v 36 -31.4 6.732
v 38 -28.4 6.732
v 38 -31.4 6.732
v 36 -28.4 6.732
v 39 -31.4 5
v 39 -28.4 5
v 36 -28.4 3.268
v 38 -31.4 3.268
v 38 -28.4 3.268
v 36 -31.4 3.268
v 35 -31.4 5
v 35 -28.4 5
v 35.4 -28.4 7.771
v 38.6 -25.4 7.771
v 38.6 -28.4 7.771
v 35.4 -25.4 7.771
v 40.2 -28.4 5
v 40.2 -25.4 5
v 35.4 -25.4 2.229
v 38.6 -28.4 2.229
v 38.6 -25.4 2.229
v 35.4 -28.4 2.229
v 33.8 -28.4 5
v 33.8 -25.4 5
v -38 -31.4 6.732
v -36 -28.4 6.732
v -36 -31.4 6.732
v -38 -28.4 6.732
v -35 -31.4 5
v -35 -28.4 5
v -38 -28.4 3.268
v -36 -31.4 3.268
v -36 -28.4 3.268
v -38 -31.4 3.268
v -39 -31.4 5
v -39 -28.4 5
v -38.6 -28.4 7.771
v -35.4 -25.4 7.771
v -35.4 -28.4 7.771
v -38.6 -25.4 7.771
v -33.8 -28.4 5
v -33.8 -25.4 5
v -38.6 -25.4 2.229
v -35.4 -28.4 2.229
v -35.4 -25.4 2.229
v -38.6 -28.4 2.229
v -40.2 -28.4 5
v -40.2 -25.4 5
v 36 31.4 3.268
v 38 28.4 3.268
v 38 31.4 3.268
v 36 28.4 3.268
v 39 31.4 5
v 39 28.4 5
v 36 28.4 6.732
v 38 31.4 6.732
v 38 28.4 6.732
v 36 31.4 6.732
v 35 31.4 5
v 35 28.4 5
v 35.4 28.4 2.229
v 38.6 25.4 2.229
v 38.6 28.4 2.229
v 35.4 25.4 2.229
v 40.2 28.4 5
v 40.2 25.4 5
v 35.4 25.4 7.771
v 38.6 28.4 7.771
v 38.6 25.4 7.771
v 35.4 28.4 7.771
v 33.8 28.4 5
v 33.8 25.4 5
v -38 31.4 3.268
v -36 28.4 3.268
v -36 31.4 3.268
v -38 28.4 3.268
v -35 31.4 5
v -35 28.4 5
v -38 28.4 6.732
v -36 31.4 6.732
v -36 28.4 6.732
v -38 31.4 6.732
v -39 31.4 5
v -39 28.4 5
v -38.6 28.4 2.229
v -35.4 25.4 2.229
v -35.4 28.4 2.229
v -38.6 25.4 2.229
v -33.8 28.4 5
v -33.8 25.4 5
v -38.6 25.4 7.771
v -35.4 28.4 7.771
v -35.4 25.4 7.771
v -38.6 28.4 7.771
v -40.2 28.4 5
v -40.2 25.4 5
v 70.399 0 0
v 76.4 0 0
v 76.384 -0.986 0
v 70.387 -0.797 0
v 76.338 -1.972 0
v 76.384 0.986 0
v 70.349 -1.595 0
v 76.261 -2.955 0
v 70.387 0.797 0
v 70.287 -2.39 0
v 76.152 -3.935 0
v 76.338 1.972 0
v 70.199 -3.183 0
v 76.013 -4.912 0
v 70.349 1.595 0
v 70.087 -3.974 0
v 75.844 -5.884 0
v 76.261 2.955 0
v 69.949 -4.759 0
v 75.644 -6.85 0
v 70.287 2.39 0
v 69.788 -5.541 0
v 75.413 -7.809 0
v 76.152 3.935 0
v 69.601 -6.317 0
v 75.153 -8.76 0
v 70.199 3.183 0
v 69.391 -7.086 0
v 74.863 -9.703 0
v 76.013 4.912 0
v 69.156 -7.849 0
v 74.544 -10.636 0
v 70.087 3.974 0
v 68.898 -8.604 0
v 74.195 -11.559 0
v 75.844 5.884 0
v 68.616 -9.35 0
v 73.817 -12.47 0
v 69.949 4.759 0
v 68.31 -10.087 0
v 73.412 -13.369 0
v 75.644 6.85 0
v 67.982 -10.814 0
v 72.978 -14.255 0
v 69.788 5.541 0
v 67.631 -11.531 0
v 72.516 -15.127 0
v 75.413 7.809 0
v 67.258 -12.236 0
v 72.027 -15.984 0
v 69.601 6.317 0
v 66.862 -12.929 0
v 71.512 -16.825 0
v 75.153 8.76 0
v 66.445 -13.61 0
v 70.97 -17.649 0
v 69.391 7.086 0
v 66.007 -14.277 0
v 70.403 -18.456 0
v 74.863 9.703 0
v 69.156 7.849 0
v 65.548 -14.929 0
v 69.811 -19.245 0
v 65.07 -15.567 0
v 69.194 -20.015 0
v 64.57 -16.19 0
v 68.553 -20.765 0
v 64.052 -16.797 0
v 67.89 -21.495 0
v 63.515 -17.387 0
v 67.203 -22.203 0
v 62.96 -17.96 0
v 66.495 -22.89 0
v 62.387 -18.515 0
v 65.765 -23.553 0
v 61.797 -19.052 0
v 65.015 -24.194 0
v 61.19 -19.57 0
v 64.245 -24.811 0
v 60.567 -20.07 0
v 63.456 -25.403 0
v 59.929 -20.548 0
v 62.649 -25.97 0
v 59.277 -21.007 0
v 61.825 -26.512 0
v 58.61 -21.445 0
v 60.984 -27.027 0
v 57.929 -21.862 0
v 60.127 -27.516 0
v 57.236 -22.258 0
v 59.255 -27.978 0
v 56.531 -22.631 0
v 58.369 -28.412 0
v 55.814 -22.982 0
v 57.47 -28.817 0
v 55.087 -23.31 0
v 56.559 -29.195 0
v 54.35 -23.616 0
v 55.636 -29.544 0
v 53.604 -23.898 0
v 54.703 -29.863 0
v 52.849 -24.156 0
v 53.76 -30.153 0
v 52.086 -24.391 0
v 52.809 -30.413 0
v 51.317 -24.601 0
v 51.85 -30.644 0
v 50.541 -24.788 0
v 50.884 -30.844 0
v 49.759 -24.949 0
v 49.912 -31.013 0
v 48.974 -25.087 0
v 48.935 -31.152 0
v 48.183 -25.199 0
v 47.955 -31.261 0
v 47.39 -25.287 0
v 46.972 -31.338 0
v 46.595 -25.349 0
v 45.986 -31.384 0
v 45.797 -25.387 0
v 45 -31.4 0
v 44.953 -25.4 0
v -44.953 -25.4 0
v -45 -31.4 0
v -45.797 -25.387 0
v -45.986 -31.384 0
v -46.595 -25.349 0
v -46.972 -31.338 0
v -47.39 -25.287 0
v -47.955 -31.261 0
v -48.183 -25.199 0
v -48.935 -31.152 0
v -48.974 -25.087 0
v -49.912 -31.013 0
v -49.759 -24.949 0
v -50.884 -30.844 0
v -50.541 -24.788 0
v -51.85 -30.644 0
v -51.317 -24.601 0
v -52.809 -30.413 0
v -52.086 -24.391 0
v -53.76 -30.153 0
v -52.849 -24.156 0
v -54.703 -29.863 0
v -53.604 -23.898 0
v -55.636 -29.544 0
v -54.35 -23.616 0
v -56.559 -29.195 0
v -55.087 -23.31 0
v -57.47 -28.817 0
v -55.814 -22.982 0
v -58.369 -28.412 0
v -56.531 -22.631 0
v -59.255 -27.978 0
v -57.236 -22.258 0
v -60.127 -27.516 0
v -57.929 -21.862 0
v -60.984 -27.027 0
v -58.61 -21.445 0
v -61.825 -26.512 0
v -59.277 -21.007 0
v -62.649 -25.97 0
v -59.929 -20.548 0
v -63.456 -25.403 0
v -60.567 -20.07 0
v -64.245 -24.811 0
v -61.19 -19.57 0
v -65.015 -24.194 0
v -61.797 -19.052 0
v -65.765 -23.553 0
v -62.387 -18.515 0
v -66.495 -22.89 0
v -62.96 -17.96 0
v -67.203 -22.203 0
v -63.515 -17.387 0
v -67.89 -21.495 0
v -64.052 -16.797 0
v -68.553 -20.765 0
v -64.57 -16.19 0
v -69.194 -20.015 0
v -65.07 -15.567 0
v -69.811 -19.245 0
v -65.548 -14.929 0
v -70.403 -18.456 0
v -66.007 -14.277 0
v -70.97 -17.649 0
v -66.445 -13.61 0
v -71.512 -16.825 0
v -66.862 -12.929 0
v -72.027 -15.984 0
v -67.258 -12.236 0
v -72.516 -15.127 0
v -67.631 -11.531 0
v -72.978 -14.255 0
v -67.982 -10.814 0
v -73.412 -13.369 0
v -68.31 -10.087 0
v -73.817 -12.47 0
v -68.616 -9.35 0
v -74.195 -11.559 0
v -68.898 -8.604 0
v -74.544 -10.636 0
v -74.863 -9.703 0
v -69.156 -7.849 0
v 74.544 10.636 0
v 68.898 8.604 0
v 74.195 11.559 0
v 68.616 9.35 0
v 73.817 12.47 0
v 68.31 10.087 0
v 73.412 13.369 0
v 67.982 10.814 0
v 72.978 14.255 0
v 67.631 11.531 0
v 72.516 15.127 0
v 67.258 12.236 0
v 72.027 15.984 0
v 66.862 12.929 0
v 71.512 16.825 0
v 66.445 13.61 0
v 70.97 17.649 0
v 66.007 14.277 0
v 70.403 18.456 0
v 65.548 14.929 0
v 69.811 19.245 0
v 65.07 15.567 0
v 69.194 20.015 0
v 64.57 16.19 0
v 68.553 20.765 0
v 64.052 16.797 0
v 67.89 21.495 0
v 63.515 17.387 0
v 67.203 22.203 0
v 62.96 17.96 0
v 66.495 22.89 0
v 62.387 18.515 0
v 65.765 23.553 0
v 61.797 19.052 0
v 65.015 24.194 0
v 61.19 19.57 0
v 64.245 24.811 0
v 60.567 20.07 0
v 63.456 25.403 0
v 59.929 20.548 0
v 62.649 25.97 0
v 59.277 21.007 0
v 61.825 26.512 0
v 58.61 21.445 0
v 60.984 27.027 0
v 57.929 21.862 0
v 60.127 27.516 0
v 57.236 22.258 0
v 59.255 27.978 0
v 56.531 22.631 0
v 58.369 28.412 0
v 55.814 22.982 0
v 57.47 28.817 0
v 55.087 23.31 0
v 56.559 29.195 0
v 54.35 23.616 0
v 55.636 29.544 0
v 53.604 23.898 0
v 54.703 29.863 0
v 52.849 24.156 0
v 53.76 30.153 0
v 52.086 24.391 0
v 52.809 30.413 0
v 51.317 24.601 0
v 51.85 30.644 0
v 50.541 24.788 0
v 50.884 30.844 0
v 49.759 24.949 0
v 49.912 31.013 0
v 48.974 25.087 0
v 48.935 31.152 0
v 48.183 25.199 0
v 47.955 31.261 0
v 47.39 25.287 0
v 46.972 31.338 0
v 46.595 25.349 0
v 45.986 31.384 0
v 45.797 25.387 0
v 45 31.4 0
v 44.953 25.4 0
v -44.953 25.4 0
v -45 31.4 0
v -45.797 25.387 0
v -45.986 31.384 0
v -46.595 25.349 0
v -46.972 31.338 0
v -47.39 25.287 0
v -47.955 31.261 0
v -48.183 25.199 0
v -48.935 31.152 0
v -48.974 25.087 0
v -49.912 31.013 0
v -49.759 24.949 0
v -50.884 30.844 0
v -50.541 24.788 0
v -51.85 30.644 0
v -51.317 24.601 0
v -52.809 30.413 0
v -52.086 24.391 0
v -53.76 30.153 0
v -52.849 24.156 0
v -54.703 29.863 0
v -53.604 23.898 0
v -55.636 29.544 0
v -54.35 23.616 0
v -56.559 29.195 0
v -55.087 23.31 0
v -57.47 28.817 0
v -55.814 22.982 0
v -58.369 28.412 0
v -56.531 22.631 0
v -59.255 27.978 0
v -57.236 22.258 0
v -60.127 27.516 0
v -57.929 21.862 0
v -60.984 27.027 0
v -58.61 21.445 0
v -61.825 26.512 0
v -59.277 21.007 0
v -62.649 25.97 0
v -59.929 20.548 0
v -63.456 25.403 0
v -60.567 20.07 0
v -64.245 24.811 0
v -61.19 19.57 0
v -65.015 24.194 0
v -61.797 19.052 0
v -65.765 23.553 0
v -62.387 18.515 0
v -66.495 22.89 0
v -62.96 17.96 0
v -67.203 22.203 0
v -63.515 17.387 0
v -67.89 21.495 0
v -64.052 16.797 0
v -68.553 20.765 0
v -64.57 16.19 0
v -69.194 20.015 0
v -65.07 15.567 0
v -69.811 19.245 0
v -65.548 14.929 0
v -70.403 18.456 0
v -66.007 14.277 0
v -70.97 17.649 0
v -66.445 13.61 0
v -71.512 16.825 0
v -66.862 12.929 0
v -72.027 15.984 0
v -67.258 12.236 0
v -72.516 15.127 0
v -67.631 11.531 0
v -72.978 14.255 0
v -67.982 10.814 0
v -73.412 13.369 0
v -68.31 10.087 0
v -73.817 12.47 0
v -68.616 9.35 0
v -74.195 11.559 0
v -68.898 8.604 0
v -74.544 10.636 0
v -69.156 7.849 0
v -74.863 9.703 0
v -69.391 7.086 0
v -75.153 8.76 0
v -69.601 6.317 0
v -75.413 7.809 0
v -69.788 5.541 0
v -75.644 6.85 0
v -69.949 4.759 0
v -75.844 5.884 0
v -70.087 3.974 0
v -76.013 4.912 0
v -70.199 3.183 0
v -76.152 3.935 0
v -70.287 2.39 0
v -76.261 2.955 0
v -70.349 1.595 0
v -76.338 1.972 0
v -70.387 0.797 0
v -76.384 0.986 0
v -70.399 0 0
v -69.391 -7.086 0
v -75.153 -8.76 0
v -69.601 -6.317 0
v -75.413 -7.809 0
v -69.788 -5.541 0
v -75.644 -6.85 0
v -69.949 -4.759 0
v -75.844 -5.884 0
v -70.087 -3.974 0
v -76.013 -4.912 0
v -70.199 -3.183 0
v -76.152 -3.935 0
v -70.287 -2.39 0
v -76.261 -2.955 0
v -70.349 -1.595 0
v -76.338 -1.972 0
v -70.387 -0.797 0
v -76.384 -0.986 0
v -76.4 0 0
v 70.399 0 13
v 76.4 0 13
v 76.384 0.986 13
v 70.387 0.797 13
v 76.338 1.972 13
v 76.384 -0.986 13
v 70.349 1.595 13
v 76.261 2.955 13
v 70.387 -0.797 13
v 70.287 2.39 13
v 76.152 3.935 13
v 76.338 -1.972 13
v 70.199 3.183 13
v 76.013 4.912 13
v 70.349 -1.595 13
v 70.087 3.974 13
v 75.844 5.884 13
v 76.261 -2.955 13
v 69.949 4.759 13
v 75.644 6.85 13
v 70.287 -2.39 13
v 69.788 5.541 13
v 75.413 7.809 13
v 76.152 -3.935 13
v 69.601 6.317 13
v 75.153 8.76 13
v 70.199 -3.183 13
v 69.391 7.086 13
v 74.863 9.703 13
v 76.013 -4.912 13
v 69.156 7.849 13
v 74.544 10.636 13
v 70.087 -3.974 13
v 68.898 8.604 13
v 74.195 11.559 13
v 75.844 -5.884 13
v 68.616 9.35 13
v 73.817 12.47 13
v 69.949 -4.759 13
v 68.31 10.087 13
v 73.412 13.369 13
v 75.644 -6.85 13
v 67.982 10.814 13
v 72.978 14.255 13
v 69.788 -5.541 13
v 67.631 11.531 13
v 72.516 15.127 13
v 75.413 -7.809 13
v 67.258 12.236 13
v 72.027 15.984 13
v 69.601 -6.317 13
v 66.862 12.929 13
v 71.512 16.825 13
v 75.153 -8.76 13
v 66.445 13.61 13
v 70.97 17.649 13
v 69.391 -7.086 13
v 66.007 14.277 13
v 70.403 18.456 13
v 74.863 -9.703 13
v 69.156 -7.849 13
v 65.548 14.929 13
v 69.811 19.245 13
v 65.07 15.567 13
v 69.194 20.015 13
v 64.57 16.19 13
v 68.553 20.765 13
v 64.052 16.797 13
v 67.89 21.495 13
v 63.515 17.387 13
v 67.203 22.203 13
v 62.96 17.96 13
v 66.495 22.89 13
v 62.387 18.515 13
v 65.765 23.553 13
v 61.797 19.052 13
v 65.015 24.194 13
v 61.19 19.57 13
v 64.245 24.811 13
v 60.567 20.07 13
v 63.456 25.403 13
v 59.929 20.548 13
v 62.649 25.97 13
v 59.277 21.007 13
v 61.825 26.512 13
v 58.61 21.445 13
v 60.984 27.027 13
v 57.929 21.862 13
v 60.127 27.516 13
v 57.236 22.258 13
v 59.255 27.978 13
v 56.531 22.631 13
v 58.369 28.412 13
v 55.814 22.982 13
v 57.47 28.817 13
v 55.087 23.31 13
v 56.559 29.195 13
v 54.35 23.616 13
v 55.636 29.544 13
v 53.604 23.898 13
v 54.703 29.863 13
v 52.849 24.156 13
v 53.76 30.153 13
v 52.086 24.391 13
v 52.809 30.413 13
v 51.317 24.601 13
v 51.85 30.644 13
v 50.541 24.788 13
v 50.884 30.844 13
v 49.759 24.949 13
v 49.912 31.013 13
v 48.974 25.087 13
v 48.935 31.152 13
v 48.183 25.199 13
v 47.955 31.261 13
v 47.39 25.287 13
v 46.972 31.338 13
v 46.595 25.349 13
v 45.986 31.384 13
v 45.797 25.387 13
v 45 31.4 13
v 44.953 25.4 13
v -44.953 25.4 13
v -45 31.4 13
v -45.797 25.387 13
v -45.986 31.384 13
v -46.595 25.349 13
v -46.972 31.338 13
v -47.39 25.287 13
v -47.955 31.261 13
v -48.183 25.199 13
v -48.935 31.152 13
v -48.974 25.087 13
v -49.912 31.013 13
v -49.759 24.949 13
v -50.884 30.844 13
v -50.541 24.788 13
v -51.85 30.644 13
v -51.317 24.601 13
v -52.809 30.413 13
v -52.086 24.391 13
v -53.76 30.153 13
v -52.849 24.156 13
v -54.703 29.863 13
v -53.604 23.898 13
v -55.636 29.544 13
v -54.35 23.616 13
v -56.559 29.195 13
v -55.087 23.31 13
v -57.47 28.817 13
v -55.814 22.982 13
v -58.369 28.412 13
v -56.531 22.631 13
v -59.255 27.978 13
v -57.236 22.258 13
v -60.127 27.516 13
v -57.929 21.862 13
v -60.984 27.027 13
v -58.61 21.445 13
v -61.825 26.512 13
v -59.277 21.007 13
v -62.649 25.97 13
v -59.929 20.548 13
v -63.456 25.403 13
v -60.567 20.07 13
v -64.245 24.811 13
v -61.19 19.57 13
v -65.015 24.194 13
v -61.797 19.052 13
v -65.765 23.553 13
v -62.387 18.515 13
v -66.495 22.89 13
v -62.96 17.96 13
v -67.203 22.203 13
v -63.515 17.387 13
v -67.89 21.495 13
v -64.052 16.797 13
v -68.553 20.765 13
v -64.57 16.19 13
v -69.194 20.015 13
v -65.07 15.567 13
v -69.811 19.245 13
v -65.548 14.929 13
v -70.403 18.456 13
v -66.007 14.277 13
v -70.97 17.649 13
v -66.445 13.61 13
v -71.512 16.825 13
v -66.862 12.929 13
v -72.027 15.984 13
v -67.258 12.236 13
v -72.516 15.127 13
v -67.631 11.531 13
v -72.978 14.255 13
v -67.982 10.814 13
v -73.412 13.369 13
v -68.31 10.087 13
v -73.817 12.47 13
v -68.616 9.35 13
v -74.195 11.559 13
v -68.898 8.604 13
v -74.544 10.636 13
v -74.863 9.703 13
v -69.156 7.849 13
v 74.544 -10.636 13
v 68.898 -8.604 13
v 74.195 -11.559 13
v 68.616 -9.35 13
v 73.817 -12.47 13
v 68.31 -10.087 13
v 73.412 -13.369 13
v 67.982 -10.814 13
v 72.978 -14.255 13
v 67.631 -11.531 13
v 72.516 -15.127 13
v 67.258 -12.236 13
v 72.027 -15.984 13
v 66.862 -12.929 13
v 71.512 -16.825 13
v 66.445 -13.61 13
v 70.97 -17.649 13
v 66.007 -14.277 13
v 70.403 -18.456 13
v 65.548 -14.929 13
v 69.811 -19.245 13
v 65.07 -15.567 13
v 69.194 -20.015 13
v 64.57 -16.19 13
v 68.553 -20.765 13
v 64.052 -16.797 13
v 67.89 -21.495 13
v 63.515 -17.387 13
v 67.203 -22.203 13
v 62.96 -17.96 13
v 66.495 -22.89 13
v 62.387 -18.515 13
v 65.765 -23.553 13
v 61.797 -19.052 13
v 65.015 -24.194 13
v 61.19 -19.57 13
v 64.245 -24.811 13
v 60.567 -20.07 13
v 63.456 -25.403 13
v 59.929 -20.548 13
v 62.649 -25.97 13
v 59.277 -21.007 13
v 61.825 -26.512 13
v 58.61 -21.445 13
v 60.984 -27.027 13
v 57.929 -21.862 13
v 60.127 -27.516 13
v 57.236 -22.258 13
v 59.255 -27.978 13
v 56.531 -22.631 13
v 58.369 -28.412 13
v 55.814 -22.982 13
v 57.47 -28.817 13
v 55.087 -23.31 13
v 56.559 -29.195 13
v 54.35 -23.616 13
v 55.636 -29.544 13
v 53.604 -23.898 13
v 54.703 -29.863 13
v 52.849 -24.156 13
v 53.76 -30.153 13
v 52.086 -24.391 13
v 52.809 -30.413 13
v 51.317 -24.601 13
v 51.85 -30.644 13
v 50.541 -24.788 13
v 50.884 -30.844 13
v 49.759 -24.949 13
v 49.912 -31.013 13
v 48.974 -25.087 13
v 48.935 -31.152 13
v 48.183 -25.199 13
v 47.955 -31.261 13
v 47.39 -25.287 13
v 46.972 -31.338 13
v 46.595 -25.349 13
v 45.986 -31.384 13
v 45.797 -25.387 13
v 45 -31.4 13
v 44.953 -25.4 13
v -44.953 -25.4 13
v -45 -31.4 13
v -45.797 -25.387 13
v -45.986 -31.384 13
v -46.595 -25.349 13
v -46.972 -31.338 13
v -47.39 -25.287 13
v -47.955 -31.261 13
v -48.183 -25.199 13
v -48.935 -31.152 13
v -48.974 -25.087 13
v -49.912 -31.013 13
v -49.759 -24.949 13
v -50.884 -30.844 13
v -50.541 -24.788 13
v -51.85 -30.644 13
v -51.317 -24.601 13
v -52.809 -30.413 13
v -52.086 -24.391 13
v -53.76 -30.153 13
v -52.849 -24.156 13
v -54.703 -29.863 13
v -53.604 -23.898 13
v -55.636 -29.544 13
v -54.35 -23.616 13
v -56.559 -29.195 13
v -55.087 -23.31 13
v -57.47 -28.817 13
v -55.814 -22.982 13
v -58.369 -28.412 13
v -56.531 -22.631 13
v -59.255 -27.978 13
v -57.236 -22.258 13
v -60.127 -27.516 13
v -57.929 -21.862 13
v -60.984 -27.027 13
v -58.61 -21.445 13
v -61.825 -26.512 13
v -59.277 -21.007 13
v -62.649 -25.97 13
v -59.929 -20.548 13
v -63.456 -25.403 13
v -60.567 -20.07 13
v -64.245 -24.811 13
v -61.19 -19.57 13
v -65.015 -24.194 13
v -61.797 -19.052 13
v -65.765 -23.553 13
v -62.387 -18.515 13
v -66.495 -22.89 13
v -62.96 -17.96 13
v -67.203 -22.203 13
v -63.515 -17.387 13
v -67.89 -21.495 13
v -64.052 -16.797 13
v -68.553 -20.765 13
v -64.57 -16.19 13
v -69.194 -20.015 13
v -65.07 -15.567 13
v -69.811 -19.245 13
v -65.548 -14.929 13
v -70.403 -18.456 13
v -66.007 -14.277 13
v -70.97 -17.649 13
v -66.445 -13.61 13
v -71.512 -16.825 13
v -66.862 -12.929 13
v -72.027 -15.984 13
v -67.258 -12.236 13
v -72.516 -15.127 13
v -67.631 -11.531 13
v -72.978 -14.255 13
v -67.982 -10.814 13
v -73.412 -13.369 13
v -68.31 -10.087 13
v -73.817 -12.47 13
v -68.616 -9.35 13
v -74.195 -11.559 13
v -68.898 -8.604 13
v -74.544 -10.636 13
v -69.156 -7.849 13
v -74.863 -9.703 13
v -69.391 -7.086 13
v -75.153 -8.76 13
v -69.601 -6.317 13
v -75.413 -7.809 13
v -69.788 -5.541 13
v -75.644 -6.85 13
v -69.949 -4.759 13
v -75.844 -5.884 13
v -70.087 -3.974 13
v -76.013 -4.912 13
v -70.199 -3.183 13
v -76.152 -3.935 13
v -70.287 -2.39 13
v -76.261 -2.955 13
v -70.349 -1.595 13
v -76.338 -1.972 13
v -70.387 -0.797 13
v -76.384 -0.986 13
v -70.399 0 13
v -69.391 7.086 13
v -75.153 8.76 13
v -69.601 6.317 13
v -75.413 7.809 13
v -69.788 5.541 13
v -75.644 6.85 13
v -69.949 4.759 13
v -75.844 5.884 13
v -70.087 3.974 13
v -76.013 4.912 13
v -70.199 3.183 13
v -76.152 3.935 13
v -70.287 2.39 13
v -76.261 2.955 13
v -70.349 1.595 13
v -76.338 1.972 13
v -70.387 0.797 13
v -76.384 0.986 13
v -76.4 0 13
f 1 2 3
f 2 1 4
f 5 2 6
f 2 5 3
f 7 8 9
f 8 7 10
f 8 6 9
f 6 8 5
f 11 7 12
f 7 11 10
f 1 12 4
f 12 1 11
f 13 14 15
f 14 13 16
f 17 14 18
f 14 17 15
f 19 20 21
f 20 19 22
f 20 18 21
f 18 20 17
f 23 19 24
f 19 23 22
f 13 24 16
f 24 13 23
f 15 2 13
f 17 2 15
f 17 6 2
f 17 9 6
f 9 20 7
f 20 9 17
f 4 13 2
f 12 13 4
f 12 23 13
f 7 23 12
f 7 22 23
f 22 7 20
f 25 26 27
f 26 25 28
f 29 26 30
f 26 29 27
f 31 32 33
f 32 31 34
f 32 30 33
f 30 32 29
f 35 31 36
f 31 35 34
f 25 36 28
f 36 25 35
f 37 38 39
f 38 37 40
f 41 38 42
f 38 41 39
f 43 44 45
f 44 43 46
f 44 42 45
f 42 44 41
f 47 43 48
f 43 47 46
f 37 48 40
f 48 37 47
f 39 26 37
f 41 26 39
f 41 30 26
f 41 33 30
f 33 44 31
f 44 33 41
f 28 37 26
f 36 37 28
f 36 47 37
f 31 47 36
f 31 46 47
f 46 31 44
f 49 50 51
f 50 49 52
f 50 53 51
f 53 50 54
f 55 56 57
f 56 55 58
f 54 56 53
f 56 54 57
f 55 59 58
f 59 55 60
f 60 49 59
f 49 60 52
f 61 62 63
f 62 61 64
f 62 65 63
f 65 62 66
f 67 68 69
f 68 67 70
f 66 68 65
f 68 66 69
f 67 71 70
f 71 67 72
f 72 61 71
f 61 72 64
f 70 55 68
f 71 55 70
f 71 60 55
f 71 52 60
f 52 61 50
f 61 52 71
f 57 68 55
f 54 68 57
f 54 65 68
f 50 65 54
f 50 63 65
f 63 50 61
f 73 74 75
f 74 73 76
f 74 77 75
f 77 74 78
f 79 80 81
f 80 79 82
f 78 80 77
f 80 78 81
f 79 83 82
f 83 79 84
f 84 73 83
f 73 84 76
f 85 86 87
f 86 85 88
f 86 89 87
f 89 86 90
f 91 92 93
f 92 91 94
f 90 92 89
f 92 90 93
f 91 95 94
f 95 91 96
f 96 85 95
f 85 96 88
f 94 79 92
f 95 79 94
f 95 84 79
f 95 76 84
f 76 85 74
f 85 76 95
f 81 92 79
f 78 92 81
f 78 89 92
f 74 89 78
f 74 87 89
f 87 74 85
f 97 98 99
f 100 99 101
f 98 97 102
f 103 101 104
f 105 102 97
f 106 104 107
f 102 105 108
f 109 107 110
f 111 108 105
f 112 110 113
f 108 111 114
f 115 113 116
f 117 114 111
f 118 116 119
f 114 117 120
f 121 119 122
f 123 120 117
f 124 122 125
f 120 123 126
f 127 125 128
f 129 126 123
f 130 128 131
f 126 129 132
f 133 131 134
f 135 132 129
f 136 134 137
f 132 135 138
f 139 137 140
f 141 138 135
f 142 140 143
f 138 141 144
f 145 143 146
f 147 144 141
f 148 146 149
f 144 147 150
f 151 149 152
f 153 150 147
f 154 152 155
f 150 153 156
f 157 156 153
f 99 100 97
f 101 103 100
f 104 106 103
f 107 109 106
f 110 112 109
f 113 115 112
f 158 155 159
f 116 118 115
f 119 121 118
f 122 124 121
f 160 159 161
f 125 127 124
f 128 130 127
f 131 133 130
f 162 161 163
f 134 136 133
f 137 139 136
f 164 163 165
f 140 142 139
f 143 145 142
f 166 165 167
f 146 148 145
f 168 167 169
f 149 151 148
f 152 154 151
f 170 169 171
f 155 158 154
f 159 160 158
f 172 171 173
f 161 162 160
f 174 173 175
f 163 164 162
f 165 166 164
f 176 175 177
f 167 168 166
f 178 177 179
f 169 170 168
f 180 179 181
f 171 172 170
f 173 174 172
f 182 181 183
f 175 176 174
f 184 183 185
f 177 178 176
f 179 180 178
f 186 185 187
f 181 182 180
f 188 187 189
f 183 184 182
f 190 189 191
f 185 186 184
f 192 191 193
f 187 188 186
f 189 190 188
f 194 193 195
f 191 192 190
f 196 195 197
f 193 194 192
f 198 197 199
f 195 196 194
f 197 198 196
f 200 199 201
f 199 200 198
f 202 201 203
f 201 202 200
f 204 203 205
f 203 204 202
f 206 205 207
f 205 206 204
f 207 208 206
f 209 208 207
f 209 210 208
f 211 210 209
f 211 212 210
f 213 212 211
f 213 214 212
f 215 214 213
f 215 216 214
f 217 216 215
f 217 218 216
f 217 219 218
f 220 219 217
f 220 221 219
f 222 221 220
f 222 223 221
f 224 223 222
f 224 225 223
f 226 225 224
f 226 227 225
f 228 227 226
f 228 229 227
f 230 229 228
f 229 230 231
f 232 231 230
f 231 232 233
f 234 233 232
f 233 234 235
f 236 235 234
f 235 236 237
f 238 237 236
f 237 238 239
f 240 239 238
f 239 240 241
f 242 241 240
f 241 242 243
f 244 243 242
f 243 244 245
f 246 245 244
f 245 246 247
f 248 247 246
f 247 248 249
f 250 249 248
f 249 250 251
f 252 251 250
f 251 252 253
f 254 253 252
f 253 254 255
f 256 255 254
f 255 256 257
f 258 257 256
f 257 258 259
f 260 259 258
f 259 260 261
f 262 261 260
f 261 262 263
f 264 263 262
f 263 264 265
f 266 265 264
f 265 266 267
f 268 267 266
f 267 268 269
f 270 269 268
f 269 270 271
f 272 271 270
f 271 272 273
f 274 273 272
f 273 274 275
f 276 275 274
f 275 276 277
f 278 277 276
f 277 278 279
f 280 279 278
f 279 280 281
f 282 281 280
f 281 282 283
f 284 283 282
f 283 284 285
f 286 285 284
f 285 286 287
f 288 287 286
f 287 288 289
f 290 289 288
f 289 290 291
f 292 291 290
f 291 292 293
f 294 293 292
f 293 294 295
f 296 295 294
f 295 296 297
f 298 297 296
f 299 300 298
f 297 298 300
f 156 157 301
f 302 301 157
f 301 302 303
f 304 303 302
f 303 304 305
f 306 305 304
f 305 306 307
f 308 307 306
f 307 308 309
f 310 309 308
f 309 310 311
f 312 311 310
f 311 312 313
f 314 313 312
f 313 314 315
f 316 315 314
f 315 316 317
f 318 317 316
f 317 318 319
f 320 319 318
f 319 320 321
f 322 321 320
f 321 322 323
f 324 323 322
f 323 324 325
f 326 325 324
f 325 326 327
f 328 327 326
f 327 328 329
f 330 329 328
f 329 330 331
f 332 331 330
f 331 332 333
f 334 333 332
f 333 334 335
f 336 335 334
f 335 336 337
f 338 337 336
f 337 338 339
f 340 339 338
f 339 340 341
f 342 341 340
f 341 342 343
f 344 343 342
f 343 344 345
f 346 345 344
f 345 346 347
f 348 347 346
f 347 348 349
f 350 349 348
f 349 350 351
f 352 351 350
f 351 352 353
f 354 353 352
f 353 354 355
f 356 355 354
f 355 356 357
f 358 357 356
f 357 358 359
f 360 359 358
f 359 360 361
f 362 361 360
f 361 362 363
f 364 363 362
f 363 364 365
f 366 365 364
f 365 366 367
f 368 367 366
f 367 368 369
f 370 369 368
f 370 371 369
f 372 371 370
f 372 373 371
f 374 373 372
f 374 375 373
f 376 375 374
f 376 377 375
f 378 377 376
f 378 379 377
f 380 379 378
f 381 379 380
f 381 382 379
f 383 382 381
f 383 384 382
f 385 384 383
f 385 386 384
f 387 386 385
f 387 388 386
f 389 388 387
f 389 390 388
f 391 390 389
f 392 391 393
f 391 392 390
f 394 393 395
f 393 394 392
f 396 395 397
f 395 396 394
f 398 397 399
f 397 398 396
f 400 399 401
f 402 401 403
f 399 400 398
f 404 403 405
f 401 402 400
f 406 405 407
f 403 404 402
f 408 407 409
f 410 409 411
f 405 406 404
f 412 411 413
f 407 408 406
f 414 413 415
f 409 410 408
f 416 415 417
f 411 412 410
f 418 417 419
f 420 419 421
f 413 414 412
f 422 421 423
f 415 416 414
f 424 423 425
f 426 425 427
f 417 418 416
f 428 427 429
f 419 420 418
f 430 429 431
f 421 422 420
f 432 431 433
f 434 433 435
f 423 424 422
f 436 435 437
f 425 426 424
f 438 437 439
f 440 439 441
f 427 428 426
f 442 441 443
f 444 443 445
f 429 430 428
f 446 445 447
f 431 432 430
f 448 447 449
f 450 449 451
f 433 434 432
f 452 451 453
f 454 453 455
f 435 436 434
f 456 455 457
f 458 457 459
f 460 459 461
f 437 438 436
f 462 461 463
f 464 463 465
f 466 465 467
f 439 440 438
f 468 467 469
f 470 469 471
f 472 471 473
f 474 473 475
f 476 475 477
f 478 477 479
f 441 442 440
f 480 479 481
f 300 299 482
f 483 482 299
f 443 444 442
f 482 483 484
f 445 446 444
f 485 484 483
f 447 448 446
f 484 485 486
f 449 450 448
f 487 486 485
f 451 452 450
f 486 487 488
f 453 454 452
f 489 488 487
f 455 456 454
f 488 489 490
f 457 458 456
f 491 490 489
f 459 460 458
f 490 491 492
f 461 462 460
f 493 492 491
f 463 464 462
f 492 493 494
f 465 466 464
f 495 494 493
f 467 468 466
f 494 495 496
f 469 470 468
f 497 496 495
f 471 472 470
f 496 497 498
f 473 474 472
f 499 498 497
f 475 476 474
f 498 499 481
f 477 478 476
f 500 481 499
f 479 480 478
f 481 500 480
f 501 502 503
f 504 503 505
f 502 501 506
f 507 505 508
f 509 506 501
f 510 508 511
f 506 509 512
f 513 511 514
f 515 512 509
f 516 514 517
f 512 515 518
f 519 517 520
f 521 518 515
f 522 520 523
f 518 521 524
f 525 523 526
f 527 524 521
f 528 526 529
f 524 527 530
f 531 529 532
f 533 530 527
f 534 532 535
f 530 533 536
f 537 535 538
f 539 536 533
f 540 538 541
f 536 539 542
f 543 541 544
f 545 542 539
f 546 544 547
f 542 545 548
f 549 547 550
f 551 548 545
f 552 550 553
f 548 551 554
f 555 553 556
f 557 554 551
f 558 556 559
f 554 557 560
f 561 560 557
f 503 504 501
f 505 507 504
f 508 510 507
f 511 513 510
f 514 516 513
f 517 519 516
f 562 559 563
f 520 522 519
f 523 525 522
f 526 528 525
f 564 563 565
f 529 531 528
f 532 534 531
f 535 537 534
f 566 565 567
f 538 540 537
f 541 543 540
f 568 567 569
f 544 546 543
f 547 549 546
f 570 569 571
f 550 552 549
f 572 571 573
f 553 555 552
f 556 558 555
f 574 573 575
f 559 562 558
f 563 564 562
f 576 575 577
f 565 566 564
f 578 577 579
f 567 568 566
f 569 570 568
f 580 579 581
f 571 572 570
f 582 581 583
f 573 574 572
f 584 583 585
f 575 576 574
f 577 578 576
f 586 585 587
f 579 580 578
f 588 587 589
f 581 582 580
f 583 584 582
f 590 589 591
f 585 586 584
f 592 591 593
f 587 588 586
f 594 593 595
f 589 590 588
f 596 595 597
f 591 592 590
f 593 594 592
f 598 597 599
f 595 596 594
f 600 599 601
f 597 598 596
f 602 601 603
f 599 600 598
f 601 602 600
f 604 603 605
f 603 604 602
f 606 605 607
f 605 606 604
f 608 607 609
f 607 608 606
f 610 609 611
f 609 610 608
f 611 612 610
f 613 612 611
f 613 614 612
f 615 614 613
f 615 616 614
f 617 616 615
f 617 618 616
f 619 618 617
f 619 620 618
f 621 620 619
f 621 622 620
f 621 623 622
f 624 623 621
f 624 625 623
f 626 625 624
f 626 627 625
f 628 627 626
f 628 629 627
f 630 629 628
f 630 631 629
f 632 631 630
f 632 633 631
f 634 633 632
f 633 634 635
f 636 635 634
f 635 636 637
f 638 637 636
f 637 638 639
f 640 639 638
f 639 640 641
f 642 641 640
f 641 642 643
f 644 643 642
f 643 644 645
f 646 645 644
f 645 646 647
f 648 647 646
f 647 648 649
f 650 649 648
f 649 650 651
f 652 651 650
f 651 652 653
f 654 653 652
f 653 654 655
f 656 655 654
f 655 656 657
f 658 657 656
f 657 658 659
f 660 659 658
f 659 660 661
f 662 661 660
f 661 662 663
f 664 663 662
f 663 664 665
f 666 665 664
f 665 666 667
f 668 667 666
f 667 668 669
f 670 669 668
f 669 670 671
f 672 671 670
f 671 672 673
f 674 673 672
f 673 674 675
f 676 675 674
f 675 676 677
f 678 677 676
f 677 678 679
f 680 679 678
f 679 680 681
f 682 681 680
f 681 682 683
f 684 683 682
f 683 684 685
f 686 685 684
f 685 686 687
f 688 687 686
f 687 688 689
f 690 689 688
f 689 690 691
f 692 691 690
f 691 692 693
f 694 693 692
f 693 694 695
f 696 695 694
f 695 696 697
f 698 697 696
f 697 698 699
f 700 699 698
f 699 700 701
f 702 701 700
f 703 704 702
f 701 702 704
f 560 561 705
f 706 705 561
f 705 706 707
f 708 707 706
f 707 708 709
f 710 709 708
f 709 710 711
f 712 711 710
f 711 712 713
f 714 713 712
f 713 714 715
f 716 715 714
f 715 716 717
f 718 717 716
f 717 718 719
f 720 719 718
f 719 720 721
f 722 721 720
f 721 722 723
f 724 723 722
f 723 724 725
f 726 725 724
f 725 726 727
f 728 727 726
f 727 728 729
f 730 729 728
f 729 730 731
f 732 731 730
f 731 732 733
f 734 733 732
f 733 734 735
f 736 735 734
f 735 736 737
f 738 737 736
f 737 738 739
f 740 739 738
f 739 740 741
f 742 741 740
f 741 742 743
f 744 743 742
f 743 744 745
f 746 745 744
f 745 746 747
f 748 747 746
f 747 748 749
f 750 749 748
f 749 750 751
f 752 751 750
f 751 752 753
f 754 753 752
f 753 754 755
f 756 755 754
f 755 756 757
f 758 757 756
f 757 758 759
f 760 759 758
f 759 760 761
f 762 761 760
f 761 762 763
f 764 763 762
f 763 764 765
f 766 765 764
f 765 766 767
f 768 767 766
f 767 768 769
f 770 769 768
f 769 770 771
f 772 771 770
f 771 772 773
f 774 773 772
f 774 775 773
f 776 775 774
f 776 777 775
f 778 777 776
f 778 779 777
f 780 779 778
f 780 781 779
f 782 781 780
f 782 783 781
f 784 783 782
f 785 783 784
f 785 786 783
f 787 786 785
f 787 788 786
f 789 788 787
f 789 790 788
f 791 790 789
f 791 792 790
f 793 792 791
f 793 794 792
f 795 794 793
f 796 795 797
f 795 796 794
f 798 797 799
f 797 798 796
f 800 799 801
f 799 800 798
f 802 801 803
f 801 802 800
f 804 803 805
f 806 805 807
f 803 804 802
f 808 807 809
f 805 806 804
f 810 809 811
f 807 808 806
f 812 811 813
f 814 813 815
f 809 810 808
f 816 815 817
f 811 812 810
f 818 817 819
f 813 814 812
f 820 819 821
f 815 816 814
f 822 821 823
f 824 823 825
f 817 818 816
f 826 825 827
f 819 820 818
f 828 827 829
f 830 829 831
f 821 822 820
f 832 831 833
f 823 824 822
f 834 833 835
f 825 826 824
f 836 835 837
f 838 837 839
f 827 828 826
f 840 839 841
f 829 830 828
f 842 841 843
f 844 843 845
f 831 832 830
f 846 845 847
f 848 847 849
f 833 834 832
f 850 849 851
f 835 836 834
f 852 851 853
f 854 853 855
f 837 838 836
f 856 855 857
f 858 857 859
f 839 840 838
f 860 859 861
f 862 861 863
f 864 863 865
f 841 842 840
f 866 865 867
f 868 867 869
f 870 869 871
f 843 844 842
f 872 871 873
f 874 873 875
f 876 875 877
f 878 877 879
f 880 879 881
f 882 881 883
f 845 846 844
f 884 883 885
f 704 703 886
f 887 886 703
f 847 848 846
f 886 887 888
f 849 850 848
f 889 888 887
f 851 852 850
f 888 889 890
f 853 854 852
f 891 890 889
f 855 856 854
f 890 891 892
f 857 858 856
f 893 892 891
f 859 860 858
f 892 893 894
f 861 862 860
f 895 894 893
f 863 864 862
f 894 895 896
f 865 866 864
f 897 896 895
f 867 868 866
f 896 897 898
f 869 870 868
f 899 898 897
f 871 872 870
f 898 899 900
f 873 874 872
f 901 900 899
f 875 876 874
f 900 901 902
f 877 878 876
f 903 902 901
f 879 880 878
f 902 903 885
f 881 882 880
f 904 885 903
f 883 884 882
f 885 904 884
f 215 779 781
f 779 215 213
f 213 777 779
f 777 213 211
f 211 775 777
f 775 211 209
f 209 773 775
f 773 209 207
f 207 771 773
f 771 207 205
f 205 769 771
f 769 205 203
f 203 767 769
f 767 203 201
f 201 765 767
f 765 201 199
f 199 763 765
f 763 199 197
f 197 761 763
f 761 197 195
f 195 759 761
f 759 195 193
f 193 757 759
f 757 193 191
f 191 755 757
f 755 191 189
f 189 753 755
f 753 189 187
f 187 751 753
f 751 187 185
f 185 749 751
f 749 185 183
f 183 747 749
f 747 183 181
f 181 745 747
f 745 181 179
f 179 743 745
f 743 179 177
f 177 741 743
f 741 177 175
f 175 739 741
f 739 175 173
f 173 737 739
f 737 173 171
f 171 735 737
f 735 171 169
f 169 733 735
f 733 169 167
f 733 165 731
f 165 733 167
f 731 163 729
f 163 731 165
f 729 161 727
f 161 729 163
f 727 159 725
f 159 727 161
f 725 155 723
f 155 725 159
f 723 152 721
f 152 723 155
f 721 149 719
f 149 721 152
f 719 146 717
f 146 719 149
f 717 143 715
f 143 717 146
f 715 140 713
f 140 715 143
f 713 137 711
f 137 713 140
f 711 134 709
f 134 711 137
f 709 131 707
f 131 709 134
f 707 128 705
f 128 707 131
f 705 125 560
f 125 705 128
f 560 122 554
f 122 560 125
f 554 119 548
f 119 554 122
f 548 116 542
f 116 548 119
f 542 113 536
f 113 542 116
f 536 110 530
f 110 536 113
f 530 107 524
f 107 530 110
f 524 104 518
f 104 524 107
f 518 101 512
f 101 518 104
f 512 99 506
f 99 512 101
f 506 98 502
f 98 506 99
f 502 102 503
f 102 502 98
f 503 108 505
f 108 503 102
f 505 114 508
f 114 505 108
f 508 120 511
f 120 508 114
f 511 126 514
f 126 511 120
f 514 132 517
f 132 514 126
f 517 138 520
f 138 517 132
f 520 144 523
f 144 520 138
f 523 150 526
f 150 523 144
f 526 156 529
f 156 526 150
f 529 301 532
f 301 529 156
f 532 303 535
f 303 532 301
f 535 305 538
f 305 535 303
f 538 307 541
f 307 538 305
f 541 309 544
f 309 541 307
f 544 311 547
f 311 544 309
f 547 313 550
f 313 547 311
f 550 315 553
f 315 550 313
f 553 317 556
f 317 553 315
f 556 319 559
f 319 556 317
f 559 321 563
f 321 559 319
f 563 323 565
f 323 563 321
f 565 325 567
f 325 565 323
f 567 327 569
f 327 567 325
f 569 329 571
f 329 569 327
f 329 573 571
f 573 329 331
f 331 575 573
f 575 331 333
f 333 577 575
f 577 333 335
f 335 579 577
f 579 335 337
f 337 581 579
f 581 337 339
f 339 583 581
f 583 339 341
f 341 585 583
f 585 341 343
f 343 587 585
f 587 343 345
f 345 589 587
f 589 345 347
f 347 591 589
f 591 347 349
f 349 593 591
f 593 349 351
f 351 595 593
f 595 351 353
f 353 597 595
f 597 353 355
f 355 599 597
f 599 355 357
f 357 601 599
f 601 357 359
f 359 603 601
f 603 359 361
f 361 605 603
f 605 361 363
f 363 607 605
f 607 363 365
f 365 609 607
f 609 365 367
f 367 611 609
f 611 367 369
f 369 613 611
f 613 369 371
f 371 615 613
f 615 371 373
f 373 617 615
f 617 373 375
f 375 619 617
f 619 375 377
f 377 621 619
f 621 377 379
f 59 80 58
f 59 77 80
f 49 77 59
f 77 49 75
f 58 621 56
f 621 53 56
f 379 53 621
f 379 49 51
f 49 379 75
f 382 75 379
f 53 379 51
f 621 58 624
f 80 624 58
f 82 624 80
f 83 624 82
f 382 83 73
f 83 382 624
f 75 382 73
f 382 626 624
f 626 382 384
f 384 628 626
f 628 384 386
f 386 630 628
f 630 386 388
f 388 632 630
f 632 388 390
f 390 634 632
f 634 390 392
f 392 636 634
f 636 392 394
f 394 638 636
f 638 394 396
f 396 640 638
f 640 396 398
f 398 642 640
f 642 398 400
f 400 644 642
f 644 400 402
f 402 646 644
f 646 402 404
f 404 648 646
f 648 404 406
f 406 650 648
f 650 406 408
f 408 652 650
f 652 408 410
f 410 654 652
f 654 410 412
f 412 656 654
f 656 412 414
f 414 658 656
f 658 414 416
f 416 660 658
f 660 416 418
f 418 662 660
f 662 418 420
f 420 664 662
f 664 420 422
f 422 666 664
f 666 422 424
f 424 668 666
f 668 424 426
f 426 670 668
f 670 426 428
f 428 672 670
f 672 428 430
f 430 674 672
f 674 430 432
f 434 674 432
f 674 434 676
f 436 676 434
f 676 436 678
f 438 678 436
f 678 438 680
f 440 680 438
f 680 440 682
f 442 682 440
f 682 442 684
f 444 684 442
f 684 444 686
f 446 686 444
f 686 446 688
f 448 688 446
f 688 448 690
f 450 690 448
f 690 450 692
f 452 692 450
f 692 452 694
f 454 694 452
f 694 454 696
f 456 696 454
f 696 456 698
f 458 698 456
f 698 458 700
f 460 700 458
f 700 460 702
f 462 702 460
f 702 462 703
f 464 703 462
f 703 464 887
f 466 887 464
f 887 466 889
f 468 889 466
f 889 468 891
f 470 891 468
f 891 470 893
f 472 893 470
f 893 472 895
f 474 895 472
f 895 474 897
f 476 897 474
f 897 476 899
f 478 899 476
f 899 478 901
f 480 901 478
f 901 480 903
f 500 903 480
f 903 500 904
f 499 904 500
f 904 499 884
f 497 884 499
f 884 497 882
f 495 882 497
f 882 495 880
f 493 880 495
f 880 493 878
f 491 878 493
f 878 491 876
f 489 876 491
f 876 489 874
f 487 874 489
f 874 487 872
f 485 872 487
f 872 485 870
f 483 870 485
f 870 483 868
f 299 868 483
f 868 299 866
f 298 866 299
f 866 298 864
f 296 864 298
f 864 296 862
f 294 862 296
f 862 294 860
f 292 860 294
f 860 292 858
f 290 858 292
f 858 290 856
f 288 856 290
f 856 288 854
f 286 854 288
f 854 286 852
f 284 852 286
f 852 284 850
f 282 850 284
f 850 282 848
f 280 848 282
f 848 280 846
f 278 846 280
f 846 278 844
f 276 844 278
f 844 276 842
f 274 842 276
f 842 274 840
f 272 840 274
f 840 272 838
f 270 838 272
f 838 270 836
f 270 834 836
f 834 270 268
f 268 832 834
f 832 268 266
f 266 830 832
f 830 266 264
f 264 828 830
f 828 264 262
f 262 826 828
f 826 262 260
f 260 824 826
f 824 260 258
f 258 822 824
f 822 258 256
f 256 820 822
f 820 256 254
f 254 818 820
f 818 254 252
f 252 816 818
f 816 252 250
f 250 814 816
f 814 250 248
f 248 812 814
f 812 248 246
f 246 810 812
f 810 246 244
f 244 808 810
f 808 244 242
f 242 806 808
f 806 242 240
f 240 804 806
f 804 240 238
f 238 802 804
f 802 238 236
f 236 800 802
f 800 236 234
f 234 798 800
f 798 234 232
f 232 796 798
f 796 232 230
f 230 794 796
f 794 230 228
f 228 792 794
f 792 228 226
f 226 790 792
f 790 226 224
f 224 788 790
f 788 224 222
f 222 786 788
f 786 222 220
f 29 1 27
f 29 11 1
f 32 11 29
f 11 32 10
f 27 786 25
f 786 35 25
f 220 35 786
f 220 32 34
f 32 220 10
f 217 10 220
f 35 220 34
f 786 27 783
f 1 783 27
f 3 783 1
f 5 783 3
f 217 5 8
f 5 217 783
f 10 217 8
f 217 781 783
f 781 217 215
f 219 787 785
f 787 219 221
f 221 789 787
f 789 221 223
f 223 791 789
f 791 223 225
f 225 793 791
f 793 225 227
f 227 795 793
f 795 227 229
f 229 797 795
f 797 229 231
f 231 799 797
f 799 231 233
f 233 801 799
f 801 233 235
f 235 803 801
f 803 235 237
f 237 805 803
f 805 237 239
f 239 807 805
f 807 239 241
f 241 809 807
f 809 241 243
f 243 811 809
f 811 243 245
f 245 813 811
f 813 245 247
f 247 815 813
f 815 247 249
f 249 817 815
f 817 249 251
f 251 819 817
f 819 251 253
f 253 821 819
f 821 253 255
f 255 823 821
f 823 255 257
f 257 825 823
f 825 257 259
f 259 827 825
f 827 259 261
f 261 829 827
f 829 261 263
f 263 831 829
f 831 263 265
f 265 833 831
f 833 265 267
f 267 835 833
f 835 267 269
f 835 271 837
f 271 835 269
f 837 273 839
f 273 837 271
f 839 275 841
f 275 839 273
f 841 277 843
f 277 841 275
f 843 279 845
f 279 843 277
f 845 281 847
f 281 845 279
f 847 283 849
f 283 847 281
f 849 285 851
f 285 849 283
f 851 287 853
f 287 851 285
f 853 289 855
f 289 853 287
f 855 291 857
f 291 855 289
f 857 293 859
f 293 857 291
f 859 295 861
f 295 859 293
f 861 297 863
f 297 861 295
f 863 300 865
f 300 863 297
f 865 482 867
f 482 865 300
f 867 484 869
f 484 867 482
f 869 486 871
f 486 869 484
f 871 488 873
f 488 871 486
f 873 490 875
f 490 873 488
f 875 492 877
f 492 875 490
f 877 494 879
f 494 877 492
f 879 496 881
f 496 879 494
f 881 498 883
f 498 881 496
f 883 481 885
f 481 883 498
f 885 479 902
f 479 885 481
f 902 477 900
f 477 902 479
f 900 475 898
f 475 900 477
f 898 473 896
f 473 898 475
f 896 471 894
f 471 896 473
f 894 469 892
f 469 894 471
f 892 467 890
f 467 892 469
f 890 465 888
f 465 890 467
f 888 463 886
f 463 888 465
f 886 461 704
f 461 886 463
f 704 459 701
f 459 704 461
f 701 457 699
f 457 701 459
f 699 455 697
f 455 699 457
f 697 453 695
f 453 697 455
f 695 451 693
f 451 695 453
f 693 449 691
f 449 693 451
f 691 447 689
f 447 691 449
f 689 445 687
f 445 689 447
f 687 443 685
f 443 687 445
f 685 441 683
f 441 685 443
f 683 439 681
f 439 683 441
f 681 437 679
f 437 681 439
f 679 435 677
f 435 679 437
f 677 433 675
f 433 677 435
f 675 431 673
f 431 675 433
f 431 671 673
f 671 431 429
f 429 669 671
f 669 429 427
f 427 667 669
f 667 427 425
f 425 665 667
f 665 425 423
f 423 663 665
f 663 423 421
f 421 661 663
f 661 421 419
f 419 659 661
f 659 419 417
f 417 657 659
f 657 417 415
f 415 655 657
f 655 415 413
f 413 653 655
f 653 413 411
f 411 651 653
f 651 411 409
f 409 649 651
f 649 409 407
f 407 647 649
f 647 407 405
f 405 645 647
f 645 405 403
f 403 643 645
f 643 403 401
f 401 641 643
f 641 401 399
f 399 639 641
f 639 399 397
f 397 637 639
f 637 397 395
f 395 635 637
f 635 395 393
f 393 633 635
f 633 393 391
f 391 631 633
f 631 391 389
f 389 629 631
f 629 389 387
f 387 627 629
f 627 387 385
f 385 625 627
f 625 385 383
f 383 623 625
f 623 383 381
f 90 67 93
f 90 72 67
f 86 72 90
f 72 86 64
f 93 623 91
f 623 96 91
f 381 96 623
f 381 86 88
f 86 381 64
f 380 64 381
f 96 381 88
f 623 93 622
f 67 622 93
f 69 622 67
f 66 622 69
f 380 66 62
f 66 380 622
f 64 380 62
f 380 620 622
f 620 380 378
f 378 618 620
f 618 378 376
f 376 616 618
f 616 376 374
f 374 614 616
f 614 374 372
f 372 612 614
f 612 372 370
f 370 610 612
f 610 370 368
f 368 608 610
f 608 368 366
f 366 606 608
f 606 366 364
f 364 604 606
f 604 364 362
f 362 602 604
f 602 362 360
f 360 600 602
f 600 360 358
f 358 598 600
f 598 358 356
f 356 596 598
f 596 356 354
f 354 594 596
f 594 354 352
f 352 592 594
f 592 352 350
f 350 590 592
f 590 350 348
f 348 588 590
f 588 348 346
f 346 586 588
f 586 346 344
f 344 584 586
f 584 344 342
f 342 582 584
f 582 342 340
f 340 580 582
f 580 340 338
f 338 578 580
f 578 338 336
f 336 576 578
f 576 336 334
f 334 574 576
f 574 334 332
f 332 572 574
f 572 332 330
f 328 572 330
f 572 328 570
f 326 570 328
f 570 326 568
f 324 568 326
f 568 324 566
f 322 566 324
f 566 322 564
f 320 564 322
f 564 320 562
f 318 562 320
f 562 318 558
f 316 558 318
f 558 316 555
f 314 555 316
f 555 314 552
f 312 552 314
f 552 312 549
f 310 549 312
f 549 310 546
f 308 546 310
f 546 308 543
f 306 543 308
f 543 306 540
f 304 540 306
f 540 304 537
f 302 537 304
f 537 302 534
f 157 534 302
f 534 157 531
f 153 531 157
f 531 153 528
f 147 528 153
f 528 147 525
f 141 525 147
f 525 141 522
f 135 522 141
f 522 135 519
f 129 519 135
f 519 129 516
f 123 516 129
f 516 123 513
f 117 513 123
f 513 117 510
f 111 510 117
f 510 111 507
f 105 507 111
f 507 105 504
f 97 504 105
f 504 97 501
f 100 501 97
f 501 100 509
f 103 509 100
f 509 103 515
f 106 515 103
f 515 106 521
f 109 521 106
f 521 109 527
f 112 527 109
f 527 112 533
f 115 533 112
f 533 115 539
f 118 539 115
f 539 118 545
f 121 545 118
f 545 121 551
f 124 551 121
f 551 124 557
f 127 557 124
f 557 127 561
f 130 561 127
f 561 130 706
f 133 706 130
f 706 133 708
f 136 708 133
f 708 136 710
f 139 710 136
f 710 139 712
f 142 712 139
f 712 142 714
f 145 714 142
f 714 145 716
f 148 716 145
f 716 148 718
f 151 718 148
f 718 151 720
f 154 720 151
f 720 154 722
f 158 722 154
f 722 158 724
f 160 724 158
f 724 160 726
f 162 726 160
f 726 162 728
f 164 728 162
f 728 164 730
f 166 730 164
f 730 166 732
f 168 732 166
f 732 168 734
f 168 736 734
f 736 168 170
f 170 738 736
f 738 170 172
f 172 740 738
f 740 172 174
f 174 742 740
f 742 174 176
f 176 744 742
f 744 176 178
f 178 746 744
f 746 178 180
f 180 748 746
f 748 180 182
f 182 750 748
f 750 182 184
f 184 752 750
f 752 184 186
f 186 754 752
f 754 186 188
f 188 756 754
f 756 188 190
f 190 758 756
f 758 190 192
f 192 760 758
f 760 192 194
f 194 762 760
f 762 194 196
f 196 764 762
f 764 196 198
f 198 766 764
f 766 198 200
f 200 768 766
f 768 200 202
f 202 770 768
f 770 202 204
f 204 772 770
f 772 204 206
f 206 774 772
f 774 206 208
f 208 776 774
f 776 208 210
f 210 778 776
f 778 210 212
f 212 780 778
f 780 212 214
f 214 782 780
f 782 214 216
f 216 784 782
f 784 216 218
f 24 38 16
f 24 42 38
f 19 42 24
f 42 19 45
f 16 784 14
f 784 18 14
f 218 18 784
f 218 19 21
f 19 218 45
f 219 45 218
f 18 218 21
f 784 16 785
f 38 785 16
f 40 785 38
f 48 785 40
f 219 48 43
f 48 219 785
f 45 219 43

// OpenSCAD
// file: m3.scad
m3_tolerance = 0.2;

m3_nut_width = 5.4;
m3_nut_width_point = 6;
m3_nut_height = 2.5;
m3_bolt_head_diameter = 5.4;
m3_bolt_recess_depth = 3;

module m3_cutout(nut_slot_length=10, tolerance=0.2, extra_thread_recess=true) {
    union() {
        // Z axis is the bolt axis
        // Cutout for nut
        translate([-(m3_nut_width + tolerance)/2, -(m3_nut_width_point + tolerance)/2, -2.5]) cube([m3_nut_width + tolerance, (m3_nut_width_point + tolerance)/2 + nut_slot_length + tolerance, m3_nut_height + tolerance]);

        translate([-(m3_nut_width + tolerance)/2, -(3 + tolerance)/2, 0]) cube([m3_nut_width + tolerance, 3 + tolerance, 10]);

        // Recess for extra thread
        if (extra_thread_recess) {
            translate([0, 0, -4]) cylinder(d=3 + 2*tolerance, h=4);
        }
    }
}

module m3_bolt_recess_cutout(tolerance=0.2) {
    union() {
        translate([0, 0, -10])
        cylinder(d=m3_bolt_recess_depth + tolerance, h=11);

        cylinder(d=m3_bolt_head_diameter + tolerance, h=10);
    }
}

/* !m3_cutout(); */

/* $fn=100; */
/* difference() { */
/*     translate([-5, -5, 0]) cube([10, 10, 8]); */
/*     translate([0, 0, 5]) m3_cutout(); */
/* } */

/* translate([20, 0, 0]) difference() { */
/*     translate([-5, -5, 0]) cube([10, 10, 6]); */
/*     translate([0, 0, 3]) m3_bold_recess_cutout(); */
/* } */
// file: shared.scad
module stadium(width, length) {
    hull() {
        translate([(width-length)/2, 0, 0]) circle(d=min(width, length));
        translate([-(width-length)/2, 0, 0]) circle(d=min(width, length));
    }
}
// main file
include <shared.scad>;
include <m3.scad>;

$fn=200;

/* Recommented print settings:
 * Layer height: 0.2mm
 */

module collar(internal_plate_width, internal_plate_length, shell_height, internal_plate_thickness=3, material_thickness=1.5, wall_thickness=3) {
    tolerance = 0.2;

    bolt_height = 5;
    height = shell_height - wall_thickness * 2*material_thickness - internal_plate_thickness - 1;

    width = internal_plate_width + material_thickness*2 - tolerance;
    length = internal_plate_length + material_thickness*2 - tolerance;
    /* total_thickness = 2*wall_thickness + 2*material_thickness + internal_plate_thickness; */
    /* inner_groove_thickness = wall_thickness + 2*material_thickness + internal_plate_thickness; */

    internal_width = width - 2*wall_thickness - 2*m3_bolt_recess_depth;

    difference() {
        // Collar
        /* linear_extrude(height=2) */
        linear_extrude(height=height)
        difference() {
            stadium(length, width);

            offset(r=-wall_thickness-m3_bolt_recess_depth)
            stadium(length, width);
        };

        // Cutouts for bolts

        bolt_tolerance=1;
        bolt_displacement = abs(internal_plate_length - internal_plate_width) / 2 - 8;

        translate([bolt_displacement, -internal_width/2 - m3_bolt_recess_depth, bolt_height])
        rotate([-90, 0, 0])
        m3_bolt_recess_cutout(tolerance=bolt_tolerance, $fn=6);

        translate([-bolt_displacement, -internal_width/2 - m3_bolt_recess_depth, bolt_height])
        rotate([-90, 0, 0])
        m3_bolt_recess_cutout(tolerance=bolt_tolerance, $fn=6);

        translate([bolt_displacement, internal_width/2 + m3_bolt_recess_depth, bolt_height])
        rotate([90, 0, 0])
        m3_bolt_recess_cutout(tolerance=bolt_tolerance, $fn=6);

        translate([-bolt_displacement, internal_width/2 + m3_bolt_recess_depth, bolt_height])
        rotate([90, 0, 0])
        m3_bolt_recess_cutout(tolerance=bolt_tolerance, $fn=6);

    };
};

collar(60, 150, 28-2);
